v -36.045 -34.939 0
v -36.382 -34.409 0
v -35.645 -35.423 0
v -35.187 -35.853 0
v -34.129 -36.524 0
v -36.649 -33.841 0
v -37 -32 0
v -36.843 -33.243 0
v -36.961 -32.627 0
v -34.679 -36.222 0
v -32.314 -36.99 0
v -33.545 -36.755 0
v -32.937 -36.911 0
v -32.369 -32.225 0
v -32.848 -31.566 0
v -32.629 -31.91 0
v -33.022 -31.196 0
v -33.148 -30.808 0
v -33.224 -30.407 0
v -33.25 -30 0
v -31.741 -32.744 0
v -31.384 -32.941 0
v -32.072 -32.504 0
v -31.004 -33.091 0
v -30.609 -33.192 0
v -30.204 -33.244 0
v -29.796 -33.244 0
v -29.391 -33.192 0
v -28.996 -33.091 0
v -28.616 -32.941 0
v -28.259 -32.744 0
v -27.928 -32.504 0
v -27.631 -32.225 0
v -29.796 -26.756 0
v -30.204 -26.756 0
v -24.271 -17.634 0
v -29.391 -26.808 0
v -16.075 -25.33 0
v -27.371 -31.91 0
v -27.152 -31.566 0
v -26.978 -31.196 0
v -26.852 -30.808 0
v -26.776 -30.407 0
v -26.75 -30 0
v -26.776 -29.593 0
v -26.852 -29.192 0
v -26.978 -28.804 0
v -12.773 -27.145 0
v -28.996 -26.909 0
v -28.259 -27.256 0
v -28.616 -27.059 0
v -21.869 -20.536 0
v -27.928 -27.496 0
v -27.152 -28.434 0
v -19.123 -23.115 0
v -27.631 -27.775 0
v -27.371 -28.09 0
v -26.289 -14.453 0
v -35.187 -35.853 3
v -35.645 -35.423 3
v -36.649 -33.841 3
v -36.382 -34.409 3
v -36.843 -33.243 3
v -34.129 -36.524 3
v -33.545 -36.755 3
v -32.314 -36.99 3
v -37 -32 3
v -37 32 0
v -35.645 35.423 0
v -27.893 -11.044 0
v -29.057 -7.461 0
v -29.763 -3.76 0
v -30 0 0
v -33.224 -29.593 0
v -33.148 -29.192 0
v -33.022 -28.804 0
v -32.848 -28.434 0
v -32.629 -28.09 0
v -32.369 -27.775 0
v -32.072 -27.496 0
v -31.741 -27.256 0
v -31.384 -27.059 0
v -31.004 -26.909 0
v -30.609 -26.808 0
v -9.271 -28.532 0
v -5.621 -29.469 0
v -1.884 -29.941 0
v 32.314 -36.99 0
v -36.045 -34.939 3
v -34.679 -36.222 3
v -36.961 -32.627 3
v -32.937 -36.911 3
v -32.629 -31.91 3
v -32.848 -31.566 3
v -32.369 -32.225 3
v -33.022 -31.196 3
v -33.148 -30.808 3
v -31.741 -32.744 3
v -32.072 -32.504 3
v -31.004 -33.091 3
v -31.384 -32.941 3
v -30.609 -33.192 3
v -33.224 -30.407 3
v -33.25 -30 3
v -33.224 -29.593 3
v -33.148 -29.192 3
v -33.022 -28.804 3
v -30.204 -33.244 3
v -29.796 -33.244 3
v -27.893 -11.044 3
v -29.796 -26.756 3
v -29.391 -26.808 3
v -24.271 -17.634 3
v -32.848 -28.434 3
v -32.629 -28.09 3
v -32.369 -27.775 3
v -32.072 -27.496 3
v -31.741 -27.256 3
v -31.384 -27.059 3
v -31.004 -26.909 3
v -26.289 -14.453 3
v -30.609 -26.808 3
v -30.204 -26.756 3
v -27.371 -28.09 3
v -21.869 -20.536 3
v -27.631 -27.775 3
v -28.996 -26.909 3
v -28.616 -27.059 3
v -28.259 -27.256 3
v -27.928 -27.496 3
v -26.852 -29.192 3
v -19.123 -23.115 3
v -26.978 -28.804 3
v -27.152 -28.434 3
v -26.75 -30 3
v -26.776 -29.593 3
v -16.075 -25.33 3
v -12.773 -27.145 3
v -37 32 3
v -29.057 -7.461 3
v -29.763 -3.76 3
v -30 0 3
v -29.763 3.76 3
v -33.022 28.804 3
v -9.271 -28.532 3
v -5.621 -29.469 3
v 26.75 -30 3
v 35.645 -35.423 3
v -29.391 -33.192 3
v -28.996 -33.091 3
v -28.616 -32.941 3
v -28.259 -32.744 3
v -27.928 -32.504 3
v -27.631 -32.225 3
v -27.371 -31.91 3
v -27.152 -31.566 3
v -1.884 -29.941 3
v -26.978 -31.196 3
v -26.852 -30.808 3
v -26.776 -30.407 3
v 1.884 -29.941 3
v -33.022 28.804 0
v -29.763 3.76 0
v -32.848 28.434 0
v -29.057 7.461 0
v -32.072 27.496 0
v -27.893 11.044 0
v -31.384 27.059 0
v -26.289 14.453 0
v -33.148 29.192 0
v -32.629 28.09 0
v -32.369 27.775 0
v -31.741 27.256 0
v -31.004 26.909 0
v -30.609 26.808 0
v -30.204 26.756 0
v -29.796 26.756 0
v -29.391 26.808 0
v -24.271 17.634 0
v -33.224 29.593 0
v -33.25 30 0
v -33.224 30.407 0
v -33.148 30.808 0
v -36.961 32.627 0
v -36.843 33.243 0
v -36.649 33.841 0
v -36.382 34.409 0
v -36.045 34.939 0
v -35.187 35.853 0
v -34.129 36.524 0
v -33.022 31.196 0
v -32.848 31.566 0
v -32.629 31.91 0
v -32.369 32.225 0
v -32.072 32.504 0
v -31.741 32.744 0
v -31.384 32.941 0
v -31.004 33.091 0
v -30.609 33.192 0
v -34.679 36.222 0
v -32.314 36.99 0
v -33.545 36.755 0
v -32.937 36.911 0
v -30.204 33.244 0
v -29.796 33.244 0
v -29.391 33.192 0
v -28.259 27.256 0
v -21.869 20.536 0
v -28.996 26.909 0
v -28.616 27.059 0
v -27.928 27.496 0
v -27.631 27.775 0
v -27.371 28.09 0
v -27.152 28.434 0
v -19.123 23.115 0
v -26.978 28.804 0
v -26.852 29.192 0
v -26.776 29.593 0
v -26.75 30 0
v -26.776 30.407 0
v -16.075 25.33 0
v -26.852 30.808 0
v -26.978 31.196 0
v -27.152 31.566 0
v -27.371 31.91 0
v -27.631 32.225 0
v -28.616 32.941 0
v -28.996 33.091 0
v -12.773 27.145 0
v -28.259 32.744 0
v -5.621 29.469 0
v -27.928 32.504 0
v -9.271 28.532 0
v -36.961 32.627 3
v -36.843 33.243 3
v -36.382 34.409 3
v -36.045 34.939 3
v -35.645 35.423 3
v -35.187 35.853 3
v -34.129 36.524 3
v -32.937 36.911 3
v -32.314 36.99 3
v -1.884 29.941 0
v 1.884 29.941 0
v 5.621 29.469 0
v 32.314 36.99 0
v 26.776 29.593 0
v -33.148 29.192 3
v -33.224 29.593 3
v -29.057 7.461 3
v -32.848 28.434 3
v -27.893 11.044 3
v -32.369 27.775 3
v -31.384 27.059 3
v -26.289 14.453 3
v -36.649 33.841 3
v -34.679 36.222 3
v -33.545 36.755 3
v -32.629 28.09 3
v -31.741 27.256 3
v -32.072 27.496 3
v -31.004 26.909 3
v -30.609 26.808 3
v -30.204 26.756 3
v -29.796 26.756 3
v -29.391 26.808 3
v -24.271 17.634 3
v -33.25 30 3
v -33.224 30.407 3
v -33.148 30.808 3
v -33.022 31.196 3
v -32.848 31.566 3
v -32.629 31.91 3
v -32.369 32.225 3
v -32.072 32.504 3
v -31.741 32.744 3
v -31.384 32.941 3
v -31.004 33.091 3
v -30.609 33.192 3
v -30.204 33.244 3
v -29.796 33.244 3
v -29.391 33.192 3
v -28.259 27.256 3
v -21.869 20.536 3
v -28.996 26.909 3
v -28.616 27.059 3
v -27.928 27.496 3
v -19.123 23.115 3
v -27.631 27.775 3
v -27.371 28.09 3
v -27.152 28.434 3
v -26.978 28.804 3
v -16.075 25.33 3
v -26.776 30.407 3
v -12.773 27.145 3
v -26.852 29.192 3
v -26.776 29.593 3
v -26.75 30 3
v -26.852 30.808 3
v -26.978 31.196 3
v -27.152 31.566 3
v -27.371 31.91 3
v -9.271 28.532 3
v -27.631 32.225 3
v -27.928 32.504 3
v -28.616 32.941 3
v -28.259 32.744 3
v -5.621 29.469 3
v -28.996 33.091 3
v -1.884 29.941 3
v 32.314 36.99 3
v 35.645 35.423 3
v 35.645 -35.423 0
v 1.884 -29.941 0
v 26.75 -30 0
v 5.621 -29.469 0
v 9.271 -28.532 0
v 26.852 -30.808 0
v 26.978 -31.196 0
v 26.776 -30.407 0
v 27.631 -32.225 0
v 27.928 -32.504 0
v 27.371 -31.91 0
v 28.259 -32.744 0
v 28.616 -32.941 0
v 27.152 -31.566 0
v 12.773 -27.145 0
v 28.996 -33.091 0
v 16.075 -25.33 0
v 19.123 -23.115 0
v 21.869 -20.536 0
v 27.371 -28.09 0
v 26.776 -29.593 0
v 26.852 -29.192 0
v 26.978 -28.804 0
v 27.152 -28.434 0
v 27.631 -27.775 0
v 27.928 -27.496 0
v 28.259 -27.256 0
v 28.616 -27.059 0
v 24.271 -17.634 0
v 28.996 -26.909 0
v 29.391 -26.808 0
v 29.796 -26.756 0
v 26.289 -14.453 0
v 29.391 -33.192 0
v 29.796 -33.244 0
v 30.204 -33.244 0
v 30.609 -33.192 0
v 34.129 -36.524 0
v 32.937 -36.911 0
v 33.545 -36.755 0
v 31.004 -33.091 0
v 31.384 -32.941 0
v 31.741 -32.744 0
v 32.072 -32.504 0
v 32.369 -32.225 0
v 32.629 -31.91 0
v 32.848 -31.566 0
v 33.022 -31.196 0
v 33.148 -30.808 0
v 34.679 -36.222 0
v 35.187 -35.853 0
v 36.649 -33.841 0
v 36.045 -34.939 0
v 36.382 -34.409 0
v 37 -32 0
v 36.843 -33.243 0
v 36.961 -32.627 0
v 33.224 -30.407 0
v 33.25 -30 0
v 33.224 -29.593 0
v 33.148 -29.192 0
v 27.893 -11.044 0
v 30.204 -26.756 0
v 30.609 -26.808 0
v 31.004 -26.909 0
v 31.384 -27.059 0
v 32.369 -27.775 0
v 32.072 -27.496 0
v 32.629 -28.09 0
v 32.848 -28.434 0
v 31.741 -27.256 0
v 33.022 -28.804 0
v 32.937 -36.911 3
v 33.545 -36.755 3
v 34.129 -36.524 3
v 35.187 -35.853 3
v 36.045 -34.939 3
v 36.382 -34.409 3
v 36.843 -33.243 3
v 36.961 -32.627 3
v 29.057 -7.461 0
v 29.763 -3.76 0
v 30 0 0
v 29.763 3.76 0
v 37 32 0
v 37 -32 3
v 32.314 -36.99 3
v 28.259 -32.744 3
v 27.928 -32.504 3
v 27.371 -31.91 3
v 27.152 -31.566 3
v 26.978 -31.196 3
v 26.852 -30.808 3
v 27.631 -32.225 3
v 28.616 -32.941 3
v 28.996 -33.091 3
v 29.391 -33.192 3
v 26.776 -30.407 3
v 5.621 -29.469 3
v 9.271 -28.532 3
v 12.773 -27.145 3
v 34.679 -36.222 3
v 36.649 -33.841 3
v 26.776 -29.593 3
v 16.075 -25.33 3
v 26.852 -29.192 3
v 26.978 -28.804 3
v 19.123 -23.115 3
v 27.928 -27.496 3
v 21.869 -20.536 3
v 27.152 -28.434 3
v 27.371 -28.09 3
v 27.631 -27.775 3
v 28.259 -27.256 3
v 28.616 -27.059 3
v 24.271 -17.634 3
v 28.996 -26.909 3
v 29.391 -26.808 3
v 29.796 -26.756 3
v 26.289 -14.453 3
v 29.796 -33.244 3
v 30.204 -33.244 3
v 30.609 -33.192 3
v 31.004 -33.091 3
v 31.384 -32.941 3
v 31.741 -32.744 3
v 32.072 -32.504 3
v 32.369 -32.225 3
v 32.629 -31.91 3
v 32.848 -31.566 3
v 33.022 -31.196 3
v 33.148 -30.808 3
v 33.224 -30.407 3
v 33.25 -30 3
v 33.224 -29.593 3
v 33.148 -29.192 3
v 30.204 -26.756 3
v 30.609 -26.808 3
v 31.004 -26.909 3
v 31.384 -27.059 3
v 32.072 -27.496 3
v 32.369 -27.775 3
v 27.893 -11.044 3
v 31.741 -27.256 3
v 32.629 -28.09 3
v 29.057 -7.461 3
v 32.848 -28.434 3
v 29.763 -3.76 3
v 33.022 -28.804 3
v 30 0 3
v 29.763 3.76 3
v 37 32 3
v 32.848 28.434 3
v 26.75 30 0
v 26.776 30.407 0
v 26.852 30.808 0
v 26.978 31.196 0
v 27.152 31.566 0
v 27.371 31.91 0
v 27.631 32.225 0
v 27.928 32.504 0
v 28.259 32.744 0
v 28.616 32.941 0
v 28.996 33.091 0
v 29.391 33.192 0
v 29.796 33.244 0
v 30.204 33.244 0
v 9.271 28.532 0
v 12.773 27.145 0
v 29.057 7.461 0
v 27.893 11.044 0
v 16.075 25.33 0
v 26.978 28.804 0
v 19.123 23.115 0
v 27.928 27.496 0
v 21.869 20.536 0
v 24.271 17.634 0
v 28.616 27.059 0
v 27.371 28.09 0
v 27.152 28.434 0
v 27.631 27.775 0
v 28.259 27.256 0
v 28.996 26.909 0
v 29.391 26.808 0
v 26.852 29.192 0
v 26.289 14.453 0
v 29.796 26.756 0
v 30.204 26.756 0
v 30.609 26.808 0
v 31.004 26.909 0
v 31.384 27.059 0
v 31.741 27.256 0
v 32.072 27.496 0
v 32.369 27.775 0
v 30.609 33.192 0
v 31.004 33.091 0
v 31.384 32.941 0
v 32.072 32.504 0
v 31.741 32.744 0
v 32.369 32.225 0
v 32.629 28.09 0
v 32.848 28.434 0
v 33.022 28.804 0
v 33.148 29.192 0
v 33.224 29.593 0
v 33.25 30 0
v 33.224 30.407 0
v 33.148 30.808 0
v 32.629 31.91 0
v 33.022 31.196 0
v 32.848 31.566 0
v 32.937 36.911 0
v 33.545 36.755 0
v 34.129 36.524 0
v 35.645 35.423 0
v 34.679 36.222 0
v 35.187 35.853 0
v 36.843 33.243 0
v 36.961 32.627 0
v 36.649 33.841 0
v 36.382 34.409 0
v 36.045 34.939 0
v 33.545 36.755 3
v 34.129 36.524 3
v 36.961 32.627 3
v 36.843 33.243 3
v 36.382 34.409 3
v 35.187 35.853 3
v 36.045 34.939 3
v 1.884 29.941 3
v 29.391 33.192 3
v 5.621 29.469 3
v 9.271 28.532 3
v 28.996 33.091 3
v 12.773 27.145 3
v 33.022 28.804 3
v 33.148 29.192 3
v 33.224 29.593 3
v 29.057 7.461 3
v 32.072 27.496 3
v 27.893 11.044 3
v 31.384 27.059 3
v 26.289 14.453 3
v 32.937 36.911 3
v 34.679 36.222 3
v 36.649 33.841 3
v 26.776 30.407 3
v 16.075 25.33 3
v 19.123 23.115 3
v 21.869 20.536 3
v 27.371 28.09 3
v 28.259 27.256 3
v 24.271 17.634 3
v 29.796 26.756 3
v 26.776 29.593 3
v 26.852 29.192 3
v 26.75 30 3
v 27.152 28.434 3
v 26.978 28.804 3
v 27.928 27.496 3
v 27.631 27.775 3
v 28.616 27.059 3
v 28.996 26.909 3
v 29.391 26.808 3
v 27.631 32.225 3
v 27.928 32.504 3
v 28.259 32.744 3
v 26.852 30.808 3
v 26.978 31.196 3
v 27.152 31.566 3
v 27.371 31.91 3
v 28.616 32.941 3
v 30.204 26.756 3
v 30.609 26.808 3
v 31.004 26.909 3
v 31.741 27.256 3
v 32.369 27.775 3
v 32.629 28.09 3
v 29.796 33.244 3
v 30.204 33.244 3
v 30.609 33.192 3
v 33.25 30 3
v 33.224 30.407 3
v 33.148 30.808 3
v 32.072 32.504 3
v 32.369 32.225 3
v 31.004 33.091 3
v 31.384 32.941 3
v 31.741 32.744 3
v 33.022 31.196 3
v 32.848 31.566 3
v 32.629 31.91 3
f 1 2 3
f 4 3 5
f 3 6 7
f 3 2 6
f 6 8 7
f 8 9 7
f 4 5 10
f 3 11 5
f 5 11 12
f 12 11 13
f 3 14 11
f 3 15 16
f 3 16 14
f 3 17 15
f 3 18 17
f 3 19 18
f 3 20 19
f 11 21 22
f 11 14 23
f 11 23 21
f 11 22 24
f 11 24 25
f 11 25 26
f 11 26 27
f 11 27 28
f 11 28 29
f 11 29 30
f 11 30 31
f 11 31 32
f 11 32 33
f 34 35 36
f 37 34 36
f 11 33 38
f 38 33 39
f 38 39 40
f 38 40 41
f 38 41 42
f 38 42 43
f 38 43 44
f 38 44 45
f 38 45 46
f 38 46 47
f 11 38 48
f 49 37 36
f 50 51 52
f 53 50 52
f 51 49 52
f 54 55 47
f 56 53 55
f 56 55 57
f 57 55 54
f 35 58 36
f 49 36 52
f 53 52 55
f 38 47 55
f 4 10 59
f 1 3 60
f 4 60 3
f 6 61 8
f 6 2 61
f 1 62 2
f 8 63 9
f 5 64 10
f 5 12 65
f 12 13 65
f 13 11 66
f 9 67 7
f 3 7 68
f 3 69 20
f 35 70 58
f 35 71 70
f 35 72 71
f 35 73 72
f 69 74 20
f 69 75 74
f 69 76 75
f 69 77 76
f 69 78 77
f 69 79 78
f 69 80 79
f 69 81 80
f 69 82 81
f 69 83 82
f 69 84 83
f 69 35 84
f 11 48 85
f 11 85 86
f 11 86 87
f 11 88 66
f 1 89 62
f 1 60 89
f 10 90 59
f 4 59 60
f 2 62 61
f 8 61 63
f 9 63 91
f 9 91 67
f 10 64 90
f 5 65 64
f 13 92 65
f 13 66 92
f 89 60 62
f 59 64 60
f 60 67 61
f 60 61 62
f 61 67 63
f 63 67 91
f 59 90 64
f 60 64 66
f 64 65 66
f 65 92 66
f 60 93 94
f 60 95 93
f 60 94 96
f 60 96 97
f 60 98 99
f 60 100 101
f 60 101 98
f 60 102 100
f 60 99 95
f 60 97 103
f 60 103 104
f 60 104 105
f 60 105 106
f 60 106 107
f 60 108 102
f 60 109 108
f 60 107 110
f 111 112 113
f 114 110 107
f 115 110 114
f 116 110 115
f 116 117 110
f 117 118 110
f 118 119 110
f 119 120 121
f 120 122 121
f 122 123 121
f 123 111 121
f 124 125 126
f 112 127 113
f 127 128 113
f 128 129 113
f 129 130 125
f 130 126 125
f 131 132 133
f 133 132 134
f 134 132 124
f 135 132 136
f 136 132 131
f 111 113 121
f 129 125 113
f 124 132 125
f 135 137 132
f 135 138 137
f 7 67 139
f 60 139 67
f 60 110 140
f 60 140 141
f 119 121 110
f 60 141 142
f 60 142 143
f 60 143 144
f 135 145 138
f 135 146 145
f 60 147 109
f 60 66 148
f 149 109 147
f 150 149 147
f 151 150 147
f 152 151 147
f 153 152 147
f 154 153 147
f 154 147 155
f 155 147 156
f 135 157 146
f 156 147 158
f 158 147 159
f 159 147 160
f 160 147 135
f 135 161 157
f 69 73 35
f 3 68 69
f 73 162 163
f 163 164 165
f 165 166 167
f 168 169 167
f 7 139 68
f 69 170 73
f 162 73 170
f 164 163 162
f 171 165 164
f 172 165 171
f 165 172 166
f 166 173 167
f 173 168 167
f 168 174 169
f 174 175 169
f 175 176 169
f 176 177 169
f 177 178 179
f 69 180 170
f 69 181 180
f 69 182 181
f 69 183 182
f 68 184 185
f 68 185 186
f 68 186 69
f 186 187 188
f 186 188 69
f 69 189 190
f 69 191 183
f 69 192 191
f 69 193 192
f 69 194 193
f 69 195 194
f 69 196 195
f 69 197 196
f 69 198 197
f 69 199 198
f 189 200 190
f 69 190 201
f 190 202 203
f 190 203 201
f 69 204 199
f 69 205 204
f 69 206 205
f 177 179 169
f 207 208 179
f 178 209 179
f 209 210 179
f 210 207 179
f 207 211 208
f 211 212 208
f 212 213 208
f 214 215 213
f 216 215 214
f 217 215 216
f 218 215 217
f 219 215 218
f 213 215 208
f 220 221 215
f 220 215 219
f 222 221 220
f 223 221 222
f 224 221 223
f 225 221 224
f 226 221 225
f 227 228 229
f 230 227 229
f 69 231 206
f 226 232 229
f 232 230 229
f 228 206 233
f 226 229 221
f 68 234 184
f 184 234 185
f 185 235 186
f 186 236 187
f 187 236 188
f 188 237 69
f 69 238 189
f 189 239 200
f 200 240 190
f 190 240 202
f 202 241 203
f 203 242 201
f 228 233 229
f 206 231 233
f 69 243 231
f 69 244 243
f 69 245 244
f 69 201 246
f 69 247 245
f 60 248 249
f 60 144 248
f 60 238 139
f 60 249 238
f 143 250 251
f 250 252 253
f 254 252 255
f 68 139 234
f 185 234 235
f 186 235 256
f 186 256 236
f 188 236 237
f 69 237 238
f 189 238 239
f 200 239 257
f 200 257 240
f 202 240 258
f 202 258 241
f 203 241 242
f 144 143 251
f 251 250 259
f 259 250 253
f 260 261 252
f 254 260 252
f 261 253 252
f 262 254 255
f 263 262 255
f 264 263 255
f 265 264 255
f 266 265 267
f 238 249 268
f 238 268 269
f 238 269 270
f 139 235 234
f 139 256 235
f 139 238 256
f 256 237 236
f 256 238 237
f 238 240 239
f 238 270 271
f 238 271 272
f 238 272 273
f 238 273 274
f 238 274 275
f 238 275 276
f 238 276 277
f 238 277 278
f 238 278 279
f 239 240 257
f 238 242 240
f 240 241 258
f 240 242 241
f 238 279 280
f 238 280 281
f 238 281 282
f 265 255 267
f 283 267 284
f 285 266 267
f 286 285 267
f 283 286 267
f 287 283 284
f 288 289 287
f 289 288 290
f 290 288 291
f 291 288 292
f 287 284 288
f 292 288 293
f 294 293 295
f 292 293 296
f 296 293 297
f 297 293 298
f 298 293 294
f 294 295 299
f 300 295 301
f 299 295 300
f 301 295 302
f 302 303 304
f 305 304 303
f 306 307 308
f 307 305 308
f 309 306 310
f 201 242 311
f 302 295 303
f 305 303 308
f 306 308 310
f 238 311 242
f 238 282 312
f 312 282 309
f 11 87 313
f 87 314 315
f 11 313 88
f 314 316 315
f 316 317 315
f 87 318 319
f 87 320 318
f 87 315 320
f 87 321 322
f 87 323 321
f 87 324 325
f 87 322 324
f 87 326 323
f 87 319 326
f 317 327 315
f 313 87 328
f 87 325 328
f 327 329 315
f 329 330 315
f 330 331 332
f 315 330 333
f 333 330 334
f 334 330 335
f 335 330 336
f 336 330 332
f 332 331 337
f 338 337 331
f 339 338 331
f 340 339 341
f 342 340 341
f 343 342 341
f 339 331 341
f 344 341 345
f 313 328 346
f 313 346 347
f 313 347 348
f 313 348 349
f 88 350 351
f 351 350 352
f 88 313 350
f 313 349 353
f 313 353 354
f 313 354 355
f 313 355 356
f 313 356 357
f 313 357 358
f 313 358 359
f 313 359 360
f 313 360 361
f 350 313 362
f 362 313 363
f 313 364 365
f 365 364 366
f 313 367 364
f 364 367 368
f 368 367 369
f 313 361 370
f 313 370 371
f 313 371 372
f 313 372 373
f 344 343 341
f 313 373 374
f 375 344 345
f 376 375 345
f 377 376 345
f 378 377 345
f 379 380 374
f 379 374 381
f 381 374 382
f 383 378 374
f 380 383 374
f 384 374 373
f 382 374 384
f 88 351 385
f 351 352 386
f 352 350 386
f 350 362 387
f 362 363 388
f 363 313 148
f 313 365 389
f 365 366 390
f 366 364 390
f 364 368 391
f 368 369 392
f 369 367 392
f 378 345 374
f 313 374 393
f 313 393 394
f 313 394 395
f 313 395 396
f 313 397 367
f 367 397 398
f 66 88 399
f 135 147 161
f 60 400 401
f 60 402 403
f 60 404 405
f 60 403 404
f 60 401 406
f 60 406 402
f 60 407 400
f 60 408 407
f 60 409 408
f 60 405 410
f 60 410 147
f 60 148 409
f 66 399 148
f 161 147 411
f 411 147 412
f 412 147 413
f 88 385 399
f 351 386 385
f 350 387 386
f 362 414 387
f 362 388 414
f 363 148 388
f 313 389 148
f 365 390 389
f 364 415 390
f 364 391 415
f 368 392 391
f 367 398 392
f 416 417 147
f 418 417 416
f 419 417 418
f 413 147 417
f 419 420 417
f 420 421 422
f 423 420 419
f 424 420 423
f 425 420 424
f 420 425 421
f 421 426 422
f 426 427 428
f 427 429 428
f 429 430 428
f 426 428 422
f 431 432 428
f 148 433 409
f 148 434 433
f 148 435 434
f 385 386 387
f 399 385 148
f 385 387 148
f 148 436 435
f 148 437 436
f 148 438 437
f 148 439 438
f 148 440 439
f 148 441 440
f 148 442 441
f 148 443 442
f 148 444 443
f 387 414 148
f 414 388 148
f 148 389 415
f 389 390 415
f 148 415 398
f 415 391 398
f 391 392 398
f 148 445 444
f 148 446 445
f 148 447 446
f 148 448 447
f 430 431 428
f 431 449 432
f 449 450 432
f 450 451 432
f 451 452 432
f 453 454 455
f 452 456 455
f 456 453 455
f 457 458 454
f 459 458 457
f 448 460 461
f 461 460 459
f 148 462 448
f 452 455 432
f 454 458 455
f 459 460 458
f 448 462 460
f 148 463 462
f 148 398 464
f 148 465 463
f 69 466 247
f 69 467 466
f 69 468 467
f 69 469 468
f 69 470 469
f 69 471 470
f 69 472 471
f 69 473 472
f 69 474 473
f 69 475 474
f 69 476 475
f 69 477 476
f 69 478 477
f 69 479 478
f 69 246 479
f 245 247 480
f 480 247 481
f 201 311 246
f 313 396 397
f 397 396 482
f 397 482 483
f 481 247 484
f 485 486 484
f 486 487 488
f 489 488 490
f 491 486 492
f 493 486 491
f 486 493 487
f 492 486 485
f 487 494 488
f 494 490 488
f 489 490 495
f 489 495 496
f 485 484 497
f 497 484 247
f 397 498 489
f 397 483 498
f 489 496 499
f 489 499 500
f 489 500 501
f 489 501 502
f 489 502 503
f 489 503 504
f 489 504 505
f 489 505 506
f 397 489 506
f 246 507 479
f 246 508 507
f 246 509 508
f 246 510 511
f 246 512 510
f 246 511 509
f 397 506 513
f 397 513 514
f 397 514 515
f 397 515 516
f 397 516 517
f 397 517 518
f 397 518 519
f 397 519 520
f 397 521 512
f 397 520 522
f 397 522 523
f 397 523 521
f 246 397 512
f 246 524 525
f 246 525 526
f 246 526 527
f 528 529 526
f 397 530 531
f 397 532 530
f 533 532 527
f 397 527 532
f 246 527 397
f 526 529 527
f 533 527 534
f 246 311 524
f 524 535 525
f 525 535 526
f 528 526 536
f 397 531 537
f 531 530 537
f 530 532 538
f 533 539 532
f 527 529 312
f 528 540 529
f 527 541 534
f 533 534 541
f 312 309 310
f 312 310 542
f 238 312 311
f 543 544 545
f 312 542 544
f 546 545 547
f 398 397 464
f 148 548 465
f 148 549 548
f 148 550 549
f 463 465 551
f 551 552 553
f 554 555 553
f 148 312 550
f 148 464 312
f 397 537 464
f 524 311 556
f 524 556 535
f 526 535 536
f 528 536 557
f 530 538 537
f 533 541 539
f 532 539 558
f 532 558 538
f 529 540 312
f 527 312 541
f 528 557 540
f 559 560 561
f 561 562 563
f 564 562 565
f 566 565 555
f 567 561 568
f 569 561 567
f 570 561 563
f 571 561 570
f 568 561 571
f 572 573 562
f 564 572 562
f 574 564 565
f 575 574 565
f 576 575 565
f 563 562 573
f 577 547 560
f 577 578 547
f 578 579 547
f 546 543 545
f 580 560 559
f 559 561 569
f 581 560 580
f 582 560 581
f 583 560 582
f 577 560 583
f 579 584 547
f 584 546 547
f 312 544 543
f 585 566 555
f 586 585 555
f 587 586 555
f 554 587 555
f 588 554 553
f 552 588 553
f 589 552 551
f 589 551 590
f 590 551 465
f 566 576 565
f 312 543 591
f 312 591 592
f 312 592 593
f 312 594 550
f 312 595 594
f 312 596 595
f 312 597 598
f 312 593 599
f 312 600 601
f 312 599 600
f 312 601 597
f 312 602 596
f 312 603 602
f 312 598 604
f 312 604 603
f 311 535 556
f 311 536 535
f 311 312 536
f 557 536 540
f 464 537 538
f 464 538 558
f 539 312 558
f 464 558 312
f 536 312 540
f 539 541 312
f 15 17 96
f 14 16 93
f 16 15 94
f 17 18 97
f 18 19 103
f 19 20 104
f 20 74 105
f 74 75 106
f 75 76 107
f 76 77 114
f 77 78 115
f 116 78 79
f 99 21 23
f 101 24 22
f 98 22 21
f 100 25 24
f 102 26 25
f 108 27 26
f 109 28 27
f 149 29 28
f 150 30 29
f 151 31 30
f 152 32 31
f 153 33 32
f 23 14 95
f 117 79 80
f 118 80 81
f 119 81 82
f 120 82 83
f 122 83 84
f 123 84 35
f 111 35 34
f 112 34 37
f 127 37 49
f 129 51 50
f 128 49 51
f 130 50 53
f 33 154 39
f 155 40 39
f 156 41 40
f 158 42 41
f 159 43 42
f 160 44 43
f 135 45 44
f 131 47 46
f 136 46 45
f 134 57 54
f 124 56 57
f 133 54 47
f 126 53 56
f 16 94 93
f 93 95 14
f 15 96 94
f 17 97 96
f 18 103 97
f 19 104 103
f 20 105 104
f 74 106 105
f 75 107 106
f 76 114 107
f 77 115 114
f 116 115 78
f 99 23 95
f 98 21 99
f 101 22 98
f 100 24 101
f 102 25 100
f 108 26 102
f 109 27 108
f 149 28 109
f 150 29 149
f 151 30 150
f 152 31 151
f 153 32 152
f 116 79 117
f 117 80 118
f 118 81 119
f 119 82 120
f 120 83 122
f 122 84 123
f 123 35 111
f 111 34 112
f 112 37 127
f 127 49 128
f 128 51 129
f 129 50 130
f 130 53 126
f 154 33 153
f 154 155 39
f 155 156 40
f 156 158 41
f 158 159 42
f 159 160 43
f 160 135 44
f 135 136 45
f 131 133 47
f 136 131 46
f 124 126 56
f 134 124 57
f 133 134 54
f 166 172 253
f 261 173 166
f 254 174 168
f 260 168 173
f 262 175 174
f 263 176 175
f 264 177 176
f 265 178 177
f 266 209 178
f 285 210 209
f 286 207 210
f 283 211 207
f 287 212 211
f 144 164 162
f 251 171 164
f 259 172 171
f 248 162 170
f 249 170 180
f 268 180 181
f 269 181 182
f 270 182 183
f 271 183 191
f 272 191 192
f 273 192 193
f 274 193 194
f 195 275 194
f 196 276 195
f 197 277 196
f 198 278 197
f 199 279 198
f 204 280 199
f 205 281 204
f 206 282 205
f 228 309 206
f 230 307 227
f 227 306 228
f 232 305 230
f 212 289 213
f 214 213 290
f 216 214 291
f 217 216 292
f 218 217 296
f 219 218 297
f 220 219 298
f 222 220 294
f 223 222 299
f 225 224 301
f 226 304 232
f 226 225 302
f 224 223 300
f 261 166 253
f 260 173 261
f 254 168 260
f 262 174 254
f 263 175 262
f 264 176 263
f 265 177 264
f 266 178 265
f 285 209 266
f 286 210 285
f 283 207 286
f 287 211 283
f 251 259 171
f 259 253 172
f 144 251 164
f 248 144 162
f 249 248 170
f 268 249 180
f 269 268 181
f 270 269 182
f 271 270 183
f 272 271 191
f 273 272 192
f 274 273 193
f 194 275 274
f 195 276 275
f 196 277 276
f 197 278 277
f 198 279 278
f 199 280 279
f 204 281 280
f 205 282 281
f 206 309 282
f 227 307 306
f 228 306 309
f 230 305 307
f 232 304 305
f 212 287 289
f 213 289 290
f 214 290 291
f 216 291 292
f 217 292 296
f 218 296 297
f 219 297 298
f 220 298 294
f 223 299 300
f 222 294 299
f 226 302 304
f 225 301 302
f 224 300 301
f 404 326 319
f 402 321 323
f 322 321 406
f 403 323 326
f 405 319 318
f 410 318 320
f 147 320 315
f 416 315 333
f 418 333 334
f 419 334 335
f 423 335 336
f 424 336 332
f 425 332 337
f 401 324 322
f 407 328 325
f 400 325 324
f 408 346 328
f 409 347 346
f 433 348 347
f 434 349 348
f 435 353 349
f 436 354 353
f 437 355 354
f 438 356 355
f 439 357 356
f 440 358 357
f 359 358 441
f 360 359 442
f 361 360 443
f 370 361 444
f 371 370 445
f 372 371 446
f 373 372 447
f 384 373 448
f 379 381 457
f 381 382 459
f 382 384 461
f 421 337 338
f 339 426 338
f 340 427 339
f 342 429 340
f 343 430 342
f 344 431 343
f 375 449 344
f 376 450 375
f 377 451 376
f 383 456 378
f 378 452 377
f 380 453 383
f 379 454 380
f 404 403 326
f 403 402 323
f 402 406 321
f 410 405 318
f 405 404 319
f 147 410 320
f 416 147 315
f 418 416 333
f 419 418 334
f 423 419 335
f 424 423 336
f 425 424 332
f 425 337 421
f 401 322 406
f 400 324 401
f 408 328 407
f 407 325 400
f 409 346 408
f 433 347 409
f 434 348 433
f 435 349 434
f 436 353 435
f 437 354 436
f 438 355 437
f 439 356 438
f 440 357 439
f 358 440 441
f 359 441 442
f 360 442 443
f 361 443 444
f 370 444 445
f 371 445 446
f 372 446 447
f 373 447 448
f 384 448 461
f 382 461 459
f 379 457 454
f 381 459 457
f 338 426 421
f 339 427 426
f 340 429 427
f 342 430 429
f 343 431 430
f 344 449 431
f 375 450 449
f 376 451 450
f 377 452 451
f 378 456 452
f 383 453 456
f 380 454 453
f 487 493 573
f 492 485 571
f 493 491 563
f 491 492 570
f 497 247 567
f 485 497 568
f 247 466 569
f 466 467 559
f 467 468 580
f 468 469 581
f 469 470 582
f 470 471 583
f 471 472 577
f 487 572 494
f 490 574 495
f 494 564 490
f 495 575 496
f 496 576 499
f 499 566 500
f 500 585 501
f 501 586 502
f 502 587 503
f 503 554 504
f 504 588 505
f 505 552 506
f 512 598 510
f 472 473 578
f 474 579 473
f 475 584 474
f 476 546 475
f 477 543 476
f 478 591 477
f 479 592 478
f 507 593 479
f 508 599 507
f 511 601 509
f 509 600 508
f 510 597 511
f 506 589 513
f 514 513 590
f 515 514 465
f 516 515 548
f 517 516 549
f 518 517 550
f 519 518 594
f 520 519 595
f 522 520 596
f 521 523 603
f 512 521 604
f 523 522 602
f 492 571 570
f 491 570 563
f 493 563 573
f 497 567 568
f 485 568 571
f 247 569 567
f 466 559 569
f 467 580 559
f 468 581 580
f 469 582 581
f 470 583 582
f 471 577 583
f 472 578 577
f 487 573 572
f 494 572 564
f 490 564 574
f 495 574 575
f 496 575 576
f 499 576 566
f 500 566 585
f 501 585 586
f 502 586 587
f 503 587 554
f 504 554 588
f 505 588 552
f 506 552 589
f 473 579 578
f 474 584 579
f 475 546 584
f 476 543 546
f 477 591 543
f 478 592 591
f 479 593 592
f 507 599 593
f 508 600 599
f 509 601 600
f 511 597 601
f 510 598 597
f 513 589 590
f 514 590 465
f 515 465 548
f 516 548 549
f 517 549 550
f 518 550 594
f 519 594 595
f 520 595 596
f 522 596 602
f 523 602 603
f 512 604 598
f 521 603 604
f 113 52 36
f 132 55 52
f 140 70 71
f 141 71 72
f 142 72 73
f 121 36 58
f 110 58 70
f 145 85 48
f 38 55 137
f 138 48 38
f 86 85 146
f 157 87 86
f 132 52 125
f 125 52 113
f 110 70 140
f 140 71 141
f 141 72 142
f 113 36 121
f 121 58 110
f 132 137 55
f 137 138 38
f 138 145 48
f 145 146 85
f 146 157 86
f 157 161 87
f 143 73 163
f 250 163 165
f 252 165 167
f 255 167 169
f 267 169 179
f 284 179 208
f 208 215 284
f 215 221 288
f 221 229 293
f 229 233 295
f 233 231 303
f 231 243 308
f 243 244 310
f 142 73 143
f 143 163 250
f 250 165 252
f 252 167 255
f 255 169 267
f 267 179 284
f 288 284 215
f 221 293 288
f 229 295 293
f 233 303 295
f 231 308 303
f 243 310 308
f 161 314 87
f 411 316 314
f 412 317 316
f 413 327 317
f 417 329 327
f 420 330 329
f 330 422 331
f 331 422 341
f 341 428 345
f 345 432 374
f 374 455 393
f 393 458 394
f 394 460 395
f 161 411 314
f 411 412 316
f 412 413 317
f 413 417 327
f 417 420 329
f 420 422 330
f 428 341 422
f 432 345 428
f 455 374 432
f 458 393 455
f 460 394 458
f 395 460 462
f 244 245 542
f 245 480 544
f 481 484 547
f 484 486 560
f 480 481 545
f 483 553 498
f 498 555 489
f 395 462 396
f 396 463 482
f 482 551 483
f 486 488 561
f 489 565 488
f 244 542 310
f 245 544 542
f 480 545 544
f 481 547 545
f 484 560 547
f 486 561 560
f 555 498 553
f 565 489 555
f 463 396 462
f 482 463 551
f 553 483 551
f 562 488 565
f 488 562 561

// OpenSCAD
$fn = 50;

difference() {
	union() {
		hull() {
			translate(v = [-32.0, 32.0, 0]) {
				cylinder(h = 3, r = 5);
			}
			translate(v = [32.0, 32.0, 0]) {
				cylinder(h = 3, r = 5);
			}
			translate(v = [-32.0, -32.0, 0]) {
				cylinder(h = 3, r = 5);
			}
			translate(v = [32.0, -32.0, 0]) {
				cylinder(h = 3, r = 5);
			}
		}
	}
	union() {
		translate(v = [-30.0, -30.0, -100.0]) {
			cylinder(h = 200, r = 3.25);
		}
		translate(v = [-30.0, 30.0, -100.0]) {
			cylinder(h = 200, r = 3.25);
		}
		translate(v = [30.0, -30.0, -100.0]) {
			cylinder(h = 200, r = 3.25);
		}
		translate(v = [30.0, 30.0, -100.0]) {
			cylinder(h = 200, r = 3.25);
		}
		translate(v = [-30.0, -30.0, -100.0]) {
			cylinder(h = 200, r = 1.8);
		}
		translate(v = [-30.0, 30.0, -100.0]) {
			cylinder(h = 200, r = 1.8);
		}
		translate(v = [30.0, -30.0, -100.0]) {
			cylinder(h = 200, r = 1.8);
		}
		translate(v = [30.0, 30.0, -100.0]) {
			cylinder(h = 200, r = 1.8);
		}
		cylinder(h = 3, r = 30.0);
	}
}
